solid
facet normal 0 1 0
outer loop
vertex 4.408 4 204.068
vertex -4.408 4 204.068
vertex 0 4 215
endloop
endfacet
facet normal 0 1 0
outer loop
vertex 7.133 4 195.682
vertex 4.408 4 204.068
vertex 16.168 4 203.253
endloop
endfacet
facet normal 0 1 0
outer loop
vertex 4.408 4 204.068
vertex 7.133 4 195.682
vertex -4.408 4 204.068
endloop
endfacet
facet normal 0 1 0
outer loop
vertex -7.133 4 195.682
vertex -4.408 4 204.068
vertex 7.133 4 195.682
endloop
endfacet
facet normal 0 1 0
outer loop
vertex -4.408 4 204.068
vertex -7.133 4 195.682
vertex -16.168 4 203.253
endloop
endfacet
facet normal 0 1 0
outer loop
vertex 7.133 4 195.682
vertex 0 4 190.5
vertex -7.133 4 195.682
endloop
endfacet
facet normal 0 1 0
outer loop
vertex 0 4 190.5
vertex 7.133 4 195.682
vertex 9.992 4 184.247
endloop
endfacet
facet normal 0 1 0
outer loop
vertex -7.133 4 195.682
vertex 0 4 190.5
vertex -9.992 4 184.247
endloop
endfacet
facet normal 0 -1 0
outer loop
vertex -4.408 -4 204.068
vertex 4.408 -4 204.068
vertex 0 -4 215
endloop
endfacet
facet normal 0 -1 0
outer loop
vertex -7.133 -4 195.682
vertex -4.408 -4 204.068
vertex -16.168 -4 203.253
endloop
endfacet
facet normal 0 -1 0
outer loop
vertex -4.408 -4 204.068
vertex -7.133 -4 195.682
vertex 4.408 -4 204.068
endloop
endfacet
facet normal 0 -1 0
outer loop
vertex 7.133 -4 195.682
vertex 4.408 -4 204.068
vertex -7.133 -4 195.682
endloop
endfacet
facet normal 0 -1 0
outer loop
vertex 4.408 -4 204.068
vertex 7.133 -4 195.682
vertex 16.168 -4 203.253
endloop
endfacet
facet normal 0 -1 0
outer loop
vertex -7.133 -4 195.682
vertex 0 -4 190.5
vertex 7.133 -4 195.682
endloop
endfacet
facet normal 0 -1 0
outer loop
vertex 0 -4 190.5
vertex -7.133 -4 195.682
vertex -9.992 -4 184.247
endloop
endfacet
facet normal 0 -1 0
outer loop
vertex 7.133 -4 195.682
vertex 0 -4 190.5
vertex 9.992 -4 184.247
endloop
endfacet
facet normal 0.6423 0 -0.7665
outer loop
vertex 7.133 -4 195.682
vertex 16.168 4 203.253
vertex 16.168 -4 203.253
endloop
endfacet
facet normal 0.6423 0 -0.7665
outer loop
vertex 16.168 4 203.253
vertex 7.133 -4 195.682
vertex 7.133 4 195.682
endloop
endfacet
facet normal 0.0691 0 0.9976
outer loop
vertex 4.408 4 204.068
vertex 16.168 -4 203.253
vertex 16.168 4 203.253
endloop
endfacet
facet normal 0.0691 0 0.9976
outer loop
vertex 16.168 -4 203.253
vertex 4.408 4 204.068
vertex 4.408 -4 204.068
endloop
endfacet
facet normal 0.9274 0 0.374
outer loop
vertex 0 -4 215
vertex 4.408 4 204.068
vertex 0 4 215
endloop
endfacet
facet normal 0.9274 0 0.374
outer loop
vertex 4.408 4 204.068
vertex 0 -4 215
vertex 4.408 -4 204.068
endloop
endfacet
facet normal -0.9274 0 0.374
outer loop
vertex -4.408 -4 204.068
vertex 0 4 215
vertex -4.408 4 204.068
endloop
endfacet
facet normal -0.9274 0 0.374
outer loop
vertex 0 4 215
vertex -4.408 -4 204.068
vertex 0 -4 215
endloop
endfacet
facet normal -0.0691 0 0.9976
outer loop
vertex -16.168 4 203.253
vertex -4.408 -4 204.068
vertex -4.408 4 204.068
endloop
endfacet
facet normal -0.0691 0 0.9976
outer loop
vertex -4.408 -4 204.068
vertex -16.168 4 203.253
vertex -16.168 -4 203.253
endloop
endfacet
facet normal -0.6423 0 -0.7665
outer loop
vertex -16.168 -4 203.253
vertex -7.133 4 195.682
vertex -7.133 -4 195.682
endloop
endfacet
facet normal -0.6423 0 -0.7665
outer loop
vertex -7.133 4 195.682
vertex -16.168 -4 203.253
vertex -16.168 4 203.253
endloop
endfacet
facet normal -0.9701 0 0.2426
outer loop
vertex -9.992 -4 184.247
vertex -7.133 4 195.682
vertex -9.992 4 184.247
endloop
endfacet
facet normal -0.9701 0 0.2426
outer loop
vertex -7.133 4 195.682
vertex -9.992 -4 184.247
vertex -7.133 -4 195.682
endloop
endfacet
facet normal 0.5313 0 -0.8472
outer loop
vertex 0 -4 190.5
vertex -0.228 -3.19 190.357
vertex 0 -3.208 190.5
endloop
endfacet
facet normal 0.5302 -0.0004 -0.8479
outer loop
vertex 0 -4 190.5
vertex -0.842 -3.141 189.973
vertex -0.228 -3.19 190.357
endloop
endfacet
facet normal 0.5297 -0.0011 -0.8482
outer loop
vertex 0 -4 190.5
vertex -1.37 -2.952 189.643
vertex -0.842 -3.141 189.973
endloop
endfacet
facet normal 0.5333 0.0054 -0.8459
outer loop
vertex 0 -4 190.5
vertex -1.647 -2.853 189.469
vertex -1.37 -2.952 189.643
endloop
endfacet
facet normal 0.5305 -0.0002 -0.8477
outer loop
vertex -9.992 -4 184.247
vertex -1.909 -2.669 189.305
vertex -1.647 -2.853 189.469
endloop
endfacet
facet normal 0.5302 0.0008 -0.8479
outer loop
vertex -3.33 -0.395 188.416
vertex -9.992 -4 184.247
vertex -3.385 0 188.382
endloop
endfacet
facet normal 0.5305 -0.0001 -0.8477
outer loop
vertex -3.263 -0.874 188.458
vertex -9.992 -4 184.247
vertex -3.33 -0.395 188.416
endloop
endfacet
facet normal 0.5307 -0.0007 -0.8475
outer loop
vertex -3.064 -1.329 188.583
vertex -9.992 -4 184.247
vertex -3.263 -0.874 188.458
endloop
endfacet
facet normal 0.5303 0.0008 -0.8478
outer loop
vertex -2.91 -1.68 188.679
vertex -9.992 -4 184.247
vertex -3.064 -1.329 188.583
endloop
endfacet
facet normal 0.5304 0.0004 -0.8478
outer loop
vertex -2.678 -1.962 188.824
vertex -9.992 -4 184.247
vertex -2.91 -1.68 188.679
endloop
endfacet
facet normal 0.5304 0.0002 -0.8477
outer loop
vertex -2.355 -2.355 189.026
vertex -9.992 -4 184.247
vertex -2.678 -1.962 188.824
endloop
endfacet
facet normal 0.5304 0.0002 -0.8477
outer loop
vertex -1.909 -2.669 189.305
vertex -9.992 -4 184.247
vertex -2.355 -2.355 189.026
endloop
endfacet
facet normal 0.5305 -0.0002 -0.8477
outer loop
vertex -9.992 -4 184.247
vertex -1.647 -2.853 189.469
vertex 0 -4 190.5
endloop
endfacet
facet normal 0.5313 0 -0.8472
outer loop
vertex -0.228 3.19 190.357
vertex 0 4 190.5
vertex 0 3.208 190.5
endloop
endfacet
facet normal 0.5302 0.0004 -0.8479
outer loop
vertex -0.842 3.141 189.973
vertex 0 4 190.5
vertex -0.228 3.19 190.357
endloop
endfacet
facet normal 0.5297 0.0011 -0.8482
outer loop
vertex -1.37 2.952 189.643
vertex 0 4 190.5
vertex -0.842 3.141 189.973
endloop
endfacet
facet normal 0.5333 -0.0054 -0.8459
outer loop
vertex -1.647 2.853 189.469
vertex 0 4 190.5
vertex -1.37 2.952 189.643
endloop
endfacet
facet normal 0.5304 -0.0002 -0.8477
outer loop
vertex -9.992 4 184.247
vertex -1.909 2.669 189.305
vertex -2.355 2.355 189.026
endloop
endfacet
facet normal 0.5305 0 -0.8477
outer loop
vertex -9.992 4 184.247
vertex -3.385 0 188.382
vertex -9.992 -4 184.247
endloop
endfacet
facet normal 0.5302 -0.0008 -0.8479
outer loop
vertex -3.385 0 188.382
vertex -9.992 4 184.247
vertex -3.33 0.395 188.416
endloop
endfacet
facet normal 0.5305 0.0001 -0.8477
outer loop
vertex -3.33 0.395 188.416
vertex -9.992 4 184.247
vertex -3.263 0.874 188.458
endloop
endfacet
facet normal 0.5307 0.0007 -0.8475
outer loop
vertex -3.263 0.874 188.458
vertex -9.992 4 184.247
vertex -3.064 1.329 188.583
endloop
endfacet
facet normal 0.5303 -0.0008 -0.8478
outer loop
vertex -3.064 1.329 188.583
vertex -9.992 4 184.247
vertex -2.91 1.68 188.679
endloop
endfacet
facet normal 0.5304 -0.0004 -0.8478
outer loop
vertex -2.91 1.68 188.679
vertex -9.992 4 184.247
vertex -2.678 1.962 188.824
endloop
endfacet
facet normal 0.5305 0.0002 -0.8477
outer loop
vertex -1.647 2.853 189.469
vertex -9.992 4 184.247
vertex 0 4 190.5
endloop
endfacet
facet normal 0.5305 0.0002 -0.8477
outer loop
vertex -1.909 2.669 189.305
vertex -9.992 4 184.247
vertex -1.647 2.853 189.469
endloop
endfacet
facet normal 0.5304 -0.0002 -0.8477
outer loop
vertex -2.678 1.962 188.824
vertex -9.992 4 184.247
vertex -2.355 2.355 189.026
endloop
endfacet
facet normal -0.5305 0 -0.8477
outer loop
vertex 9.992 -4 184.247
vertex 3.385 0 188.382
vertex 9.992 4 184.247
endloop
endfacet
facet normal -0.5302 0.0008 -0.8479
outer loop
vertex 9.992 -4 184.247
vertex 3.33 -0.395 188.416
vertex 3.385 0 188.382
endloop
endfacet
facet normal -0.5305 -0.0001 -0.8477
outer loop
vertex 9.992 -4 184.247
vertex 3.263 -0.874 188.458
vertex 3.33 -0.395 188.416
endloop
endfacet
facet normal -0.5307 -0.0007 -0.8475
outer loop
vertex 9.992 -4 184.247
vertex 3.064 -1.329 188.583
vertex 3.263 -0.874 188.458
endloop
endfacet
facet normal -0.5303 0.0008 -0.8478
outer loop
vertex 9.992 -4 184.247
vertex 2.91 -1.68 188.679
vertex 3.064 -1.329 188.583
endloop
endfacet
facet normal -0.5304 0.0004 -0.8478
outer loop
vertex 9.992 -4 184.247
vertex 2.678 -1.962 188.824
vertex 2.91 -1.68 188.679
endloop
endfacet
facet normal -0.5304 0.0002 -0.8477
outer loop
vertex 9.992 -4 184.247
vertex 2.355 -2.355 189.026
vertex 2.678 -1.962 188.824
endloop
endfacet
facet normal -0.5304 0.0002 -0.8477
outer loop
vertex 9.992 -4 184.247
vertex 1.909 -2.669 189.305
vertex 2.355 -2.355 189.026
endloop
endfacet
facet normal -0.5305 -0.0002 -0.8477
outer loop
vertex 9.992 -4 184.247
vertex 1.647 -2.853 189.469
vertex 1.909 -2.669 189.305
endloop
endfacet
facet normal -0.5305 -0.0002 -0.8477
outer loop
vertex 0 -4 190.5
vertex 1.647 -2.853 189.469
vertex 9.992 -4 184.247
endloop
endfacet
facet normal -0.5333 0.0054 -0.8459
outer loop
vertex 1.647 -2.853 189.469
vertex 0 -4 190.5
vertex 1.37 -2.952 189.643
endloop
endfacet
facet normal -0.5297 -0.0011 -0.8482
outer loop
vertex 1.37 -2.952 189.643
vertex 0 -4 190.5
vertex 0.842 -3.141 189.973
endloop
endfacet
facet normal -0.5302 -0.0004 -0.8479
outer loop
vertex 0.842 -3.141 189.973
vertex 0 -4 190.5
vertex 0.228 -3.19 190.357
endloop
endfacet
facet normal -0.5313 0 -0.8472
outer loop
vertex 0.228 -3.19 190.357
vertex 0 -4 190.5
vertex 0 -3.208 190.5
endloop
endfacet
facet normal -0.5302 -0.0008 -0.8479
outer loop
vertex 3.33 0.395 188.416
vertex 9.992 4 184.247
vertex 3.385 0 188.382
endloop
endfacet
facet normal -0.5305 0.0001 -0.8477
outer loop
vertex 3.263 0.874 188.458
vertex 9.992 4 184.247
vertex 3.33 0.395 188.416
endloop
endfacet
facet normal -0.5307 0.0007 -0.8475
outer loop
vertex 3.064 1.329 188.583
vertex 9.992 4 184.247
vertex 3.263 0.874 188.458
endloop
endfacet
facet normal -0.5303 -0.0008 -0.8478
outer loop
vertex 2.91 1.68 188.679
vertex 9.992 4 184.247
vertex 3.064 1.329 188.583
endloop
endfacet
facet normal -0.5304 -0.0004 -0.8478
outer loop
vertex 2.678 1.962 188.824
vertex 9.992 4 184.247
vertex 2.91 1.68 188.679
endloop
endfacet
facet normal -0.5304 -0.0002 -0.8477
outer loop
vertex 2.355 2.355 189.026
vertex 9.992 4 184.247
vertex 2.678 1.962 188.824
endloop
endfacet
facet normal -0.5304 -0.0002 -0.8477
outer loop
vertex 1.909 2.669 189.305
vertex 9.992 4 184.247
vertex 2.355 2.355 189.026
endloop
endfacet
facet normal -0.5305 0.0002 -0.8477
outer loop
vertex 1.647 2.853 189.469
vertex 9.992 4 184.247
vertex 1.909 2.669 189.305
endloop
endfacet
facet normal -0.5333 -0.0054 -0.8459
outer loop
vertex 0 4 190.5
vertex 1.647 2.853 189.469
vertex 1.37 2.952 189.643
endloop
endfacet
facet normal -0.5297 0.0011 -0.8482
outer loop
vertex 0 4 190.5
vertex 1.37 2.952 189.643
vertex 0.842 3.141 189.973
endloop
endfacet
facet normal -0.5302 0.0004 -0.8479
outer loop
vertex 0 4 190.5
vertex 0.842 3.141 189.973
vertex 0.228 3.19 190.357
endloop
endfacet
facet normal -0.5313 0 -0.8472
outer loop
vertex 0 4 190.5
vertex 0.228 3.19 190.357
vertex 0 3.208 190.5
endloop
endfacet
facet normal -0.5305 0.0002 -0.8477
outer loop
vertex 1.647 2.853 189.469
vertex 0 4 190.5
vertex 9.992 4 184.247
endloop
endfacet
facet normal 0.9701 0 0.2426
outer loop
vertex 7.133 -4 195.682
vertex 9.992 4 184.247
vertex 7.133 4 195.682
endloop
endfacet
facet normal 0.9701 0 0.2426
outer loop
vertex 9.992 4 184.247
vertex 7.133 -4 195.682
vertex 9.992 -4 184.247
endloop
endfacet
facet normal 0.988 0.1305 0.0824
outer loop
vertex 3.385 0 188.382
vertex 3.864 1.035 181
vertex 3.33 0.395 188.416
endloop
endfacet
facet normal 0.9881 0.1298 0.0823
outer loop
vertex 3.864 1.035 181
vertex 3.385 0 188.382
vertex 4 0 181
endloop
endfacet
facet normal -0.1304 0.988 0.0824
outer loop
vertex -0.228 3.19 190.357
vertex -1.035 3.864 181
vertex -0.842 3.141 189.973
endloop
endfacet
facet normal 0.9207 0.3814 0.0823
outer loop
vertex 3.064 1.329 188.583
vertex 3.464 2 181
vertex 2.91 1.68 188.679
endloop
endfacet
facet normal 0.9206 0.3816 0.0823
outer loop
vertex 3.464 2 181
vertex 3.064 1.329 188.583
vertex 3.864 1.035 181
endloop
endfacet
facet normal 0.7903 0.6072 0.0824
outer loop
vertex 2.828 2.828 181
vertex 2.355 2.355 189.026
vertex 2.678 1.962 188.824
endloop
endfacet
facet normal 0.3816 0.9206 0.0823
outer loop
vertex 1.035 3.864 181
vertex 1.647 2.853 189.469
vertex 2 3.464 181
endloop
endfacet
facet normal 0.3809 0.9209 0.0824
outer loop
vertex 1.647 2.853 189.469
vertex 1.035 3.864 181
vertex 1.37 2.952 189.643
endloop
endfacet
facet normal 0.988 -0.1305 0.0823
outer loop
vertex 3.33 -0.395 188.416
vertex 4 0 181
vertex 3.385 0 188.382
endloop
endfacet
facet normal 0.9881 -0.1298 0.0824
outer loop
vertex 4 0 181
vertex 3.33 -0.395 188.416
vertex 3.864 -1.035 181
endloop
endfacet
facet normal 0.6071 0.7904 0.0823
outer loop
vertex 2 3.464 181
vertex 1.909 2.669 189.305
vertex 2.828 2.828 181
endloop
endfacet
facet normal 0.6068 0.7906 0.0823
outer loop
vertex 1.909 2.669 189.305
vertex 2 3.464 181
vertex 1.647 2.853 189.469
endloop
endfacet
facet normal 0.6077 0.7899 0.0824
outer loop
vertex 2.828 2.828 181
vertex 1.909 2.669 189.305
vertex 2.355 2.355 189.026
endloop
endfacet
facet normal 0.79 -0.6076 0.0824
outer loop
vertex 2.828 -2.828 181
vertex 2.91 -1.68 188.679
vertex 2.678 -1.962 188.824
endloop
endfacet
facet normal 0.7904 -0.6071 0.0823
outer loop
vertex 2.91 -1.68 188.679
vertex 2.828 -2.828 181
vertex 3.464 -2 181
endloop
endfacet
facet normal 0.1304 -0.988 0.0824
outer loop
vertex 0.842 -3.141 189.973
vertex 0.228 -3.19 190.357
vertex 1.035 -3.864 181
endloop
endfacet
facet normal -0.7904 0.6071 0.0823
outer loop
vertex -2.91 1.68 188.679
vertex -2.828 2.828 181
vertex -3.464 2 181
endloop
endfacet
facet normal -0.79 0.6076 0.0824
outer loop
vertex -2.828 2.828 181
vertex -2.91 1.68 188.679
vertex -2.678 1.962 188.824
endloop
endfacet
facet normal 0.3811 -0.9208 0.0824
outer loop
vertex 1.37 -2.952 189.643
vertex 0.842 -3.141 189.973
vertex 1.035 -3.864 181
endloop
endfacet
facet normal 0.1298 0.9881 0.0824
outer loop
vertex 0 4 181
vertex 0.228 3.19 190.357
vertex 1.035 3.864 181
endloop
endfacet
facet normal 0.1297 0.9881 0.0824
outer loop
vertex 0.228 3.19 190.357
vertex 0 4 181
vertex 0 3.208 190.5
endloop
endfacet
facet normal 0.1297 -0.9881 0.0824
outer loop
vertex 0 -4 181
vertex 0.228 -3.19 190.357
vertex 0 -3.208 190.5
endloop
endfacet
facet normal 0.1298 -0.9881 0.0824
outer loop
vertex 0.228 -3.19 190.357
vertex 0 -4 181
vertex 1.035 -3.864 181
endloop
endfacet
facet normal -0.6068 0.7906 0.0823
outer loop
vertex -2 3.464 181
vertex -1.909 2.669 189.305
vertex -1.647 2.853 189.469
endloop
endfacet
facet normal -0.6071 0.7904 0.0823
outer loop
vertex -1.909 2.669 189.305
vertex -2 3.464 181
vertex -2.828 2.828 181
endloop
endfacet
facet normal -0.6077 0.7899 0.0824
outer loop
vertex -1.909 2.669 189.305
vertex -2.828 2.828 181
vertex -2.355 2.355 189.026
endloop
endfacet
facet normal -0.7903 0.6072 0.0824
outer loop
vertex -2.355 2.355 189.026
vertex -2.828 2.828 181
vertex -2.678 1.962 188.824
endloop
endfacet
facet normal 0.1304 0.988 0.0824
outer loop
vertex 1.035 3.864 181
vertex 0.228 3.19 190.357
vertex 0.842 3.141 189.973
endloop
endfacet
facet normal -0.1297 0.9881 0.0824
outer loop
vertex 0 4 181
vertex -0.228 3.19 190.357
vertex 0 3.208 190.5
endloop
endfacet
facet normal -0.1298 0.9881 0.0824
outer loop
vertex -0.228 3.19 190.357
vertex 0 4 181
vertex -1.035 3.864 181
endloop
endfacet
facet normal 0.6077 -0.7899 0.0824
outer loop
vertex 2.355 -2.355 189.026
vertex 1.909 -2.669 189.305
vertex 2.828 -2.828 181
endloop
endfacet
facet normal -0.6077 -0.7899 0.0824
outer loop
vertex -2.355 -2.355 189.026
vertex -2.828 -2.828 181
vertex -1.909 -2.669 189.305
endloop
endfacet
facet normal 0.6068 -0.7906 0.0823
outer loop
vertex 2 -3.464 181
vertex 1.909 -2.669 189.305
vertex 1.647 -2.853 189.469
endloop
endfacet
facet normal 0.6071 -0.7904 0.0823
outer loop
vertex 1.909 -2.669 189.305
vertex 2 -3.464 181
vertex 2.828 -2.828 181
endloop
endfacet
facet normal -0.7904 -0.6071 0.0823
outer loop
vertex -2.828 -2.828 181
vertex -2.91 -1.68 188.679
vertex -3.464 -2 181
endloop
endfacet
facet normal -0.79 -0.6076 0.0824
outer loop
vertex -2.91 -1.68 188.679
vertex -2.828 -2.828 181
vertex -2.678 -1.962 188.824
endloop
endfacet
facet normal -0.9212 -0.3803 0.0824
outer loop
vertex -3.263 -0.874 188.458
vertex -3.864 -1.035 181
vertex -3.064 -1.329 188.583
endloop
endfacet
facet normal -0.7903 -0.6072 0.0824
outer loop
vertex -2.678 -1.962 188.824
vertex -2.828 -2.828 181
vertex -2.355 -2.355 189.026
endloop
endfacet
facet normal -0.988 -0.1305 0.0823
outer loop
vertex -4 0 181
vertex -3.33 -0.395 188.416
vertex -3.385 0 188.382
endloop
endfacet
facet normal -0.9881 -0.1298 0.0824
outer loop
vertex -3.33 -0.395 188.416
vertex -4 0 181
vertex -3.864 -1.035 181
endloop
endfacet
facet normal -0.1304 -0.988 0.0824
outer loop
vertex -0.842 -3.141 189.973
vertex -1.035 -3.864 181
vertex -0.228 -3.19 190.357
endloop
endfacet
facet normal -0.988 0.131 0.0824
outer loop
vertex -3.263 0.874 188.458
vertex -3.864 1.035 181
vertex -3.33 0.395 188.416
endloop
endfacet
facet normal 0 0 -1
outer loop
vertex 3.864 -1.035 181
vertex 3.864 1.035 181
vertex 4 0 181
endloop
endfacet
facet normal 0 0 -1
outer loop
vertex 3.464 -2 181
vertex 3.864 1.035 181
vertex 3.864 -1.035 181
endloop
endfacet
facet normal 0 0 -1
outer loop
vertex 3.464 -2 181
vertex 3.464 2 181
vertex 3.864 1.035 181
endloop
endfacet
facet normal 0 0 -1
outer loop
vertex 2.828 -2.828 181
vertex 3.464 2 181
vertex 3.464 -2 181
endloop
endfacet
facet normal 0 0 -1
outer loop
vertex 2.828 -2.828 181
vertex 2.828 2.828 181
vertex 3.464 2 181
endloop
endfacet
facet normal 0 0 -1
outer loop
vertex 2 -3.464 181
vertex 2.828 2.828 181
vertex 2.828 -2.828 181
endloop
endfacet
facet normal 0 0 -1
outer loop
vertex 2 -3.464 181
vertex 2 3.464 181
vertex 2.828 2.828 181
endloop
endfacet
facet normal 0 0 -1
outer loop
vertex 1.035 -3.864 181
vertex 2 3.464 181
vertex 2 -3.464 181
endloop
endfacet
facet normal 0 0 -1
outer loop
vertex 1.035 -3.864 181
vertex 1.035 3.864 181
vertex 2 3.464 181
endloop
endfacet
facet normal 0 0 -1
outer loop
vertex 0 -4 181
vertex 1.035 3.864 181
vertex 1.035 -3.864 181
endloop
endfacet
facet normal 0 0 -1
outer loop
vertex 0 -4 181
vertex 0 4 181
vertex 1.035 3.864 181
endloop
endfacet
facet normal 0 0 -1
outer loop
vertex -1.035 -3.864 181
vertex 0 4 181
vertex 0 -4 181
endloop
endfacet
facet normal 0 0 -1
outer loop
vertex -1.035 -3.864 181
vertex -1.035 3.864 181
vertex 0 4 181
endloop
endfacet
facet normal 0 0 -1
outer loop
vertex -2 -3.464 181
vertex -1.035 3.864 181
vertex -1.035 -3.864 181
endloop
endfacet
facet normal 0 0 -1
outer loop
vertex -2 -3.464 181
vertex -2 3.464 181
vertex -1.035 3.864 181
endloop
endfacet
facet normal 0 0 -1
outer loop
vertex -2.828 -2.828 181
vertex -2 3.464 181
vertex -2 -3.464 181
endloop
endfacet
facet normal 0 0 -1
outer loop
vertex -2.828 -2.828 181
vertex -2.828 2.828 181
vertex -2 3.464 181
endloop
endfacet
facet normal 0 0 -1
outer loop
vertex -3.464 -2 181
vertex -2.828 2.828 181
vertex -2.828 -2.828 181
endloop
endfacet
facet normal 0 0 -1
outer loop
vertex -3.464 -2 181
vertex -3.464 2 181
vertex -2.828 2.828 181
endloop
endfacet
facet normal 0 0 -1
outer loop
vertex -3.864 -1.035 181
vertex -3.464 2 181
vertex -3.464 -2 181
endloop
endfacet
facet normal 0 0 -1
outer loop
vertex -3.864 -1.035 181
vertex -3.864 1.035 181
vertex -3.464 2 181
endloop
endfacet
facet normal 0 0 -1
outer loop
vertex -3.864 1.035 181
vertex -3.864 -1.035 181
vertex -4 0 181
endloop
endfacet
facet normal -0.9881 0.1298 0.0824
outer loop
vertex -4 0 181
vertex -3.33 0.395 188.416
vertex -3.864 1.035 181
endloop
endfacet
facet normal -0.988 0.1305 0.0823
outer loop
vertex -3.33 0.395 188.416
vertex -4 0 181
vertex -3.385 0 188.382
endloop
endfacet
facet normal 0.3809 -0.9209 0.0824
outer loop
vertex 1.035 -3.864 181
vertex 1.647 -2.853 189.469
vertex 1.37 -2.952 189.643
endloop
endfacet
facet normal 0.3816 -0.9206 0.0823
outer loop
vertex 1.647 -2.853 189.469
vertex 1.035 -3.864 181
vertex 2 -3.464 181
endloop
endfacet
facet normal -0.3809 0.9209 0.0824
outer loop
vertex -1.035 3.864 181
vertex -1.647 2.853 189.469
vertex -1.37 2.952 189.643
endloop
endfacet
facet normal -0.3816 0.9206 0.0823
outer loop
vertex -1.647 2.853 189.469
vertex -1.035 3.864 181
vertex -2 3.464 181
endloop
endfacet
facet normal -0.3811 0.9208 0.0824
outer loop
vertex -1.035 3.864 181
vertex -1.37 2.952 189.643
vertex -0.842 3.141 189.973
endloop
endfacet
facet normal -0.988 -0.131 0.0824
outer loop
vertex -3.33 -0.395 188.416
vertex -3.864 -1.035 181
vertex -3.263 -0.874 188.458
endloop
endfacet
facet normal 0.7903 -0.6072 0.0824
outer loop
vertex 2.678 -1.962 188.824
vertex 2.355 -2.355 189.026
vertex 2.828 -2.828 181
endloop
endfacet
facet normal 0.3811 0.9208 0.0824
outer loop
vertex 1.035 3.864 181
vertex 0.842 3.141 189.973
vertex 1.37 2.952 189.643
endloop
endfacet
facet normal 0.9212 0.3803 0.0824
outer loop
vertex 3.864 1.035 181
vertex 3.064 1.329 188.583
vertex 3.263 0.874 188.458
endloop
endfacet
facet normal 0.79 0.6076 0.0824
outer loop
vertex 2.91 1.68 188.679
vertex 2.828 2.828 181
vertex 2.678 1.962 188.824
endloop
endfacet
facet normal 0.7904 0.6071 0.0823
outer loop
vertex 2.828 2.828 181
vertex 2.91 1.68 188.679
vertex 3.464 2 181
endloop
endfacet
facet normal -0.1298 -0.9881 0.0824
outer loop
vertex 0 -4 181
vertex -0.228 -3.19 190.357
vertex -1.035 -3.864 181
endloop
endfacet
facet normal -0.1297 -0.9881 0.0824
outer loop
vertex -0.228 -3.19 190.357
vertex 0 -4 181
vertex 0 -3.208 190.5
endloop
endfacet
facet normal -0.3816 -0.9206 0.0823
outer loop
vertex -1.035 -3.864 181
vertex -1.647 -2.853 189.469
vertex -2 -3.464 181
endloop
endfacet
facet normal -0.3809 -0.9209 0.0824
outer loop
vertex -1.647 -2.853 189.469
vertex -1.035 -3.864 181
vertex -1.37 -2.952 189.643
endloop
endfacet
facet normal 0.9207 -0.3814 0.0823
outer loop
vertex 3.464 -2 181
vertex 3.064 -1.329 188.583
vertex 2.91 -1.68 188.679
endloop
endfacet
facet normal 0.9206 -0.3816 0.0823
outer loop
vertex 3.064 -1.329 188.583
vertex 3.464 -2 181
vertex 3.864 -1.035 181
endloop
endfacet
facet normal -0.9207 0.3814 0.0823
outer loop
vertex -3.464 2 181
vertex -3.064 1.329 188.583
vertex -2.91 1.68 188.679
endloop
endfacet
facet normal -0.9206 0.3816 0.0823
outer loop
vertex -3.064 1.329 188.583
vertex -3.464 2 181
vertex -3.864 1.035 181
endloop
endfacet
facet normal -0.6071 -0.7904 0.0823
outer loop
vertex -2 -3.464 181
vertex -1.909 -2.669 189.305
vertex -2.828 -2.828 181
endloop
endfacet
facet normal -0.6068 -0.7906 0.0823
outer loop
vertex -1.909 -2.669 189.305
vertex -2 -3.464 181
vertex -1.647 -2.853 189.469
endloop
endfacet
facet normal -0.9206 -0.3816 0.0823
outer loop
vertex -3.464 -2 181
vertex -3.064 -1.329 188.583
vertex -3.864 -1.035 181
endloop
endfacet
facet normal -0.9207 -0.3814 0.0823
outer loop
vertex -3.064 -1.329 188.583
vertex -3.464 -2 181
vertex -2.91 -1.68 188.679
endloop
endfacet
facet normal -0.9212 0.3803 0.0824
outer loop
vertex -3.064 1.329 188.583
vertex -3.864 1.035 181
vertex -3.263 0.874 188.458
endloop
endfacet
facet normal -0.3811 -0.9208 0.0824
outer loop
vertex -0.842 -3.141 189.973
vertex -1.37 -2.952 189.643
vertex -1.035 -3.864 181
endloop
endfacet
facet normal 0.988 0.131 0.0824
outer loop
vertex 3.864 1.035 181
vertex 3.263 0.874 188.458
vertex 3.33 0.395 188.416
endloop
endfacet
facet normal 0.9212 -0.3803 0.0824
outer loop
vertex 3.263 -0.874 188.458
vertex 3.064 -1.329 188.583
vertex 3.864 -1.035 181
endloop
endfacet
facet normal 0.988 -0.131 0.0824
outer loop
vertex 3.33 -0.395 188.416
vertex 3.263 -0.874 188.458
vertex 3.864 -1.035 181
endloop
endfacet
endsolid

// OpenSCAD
// file: comun.scad
// Impronta 3D — Bota navideña con nombre (diseño propio, 2 colores)
// Adorno para el árbol con puño "de peluche" blanco, pompón, copo y el nombre. Se imprime acostada.
nombre = "TOMI";
esp = 4.5;
$fn = 64;
module bota() {
    hull() { translate([-14, 30]) square([30, 40]); translate([-14, 0]) circle(r = 1); translate([16, 0]) circle(r = 1); }
    hull() { translate([-14, 0]) square([30, 30]); translate([-30, 6]) circle(r = 12); translate([-36, 2]) circle(r = 8); }
    translate([-14, 70]) square([30, 6]);
}
module cuerpo() {
    difference() {
        linear_extrude(esp) bota();
        translate([10, 82, -1]) cylinder(d = 4.5, h = esp + 2);
    }
    translate([10, 82, 0]) difference() { cylinder(d = 11, h = esp); translate([0, 0, -1]) cylinder(d = 4.5, h = esp + 2); }
}
module acento() {
    translate([0, 0, esp]) linear_extrude(1) {
        translate([-17, 62]) square([36, 14], center = false);          // puño
        translate([-17, 69]) circle(r = 7);                             // pompón
        translate([1, 40]) resize([26, 0], auto = true) text(nombre, size = 8, font = "Liberation Sans:style=Bold", halign = "center", valign = "center");
        translate([-24, 6]) for (a = [0 : 60 : 359]) rotate(a) translate([0, -0.8]) square([6, 1.6]);  // copo en la punta
    }
}
// main file
// Estrella de la punta (dorada, se imprime con el AMS en el mismo trabajo)
include <comun.scad>
alto = 190;
translate([0, 0, alto - 6]) rotate([90, 0, 0]) translate([0, 14, -4]) linear_extrude(8, center = false)
    polygon([for (i = [0:9]) let(r = i % 2 == 0 ? 17 : 7.5, a = 90 + 36 * i) [r * cos(a), r * sin(a)]]);
translate([0, 0, alto - 9]) cylinder(r1 = 4, r2 = 3, h = 12, $fn = 24);
